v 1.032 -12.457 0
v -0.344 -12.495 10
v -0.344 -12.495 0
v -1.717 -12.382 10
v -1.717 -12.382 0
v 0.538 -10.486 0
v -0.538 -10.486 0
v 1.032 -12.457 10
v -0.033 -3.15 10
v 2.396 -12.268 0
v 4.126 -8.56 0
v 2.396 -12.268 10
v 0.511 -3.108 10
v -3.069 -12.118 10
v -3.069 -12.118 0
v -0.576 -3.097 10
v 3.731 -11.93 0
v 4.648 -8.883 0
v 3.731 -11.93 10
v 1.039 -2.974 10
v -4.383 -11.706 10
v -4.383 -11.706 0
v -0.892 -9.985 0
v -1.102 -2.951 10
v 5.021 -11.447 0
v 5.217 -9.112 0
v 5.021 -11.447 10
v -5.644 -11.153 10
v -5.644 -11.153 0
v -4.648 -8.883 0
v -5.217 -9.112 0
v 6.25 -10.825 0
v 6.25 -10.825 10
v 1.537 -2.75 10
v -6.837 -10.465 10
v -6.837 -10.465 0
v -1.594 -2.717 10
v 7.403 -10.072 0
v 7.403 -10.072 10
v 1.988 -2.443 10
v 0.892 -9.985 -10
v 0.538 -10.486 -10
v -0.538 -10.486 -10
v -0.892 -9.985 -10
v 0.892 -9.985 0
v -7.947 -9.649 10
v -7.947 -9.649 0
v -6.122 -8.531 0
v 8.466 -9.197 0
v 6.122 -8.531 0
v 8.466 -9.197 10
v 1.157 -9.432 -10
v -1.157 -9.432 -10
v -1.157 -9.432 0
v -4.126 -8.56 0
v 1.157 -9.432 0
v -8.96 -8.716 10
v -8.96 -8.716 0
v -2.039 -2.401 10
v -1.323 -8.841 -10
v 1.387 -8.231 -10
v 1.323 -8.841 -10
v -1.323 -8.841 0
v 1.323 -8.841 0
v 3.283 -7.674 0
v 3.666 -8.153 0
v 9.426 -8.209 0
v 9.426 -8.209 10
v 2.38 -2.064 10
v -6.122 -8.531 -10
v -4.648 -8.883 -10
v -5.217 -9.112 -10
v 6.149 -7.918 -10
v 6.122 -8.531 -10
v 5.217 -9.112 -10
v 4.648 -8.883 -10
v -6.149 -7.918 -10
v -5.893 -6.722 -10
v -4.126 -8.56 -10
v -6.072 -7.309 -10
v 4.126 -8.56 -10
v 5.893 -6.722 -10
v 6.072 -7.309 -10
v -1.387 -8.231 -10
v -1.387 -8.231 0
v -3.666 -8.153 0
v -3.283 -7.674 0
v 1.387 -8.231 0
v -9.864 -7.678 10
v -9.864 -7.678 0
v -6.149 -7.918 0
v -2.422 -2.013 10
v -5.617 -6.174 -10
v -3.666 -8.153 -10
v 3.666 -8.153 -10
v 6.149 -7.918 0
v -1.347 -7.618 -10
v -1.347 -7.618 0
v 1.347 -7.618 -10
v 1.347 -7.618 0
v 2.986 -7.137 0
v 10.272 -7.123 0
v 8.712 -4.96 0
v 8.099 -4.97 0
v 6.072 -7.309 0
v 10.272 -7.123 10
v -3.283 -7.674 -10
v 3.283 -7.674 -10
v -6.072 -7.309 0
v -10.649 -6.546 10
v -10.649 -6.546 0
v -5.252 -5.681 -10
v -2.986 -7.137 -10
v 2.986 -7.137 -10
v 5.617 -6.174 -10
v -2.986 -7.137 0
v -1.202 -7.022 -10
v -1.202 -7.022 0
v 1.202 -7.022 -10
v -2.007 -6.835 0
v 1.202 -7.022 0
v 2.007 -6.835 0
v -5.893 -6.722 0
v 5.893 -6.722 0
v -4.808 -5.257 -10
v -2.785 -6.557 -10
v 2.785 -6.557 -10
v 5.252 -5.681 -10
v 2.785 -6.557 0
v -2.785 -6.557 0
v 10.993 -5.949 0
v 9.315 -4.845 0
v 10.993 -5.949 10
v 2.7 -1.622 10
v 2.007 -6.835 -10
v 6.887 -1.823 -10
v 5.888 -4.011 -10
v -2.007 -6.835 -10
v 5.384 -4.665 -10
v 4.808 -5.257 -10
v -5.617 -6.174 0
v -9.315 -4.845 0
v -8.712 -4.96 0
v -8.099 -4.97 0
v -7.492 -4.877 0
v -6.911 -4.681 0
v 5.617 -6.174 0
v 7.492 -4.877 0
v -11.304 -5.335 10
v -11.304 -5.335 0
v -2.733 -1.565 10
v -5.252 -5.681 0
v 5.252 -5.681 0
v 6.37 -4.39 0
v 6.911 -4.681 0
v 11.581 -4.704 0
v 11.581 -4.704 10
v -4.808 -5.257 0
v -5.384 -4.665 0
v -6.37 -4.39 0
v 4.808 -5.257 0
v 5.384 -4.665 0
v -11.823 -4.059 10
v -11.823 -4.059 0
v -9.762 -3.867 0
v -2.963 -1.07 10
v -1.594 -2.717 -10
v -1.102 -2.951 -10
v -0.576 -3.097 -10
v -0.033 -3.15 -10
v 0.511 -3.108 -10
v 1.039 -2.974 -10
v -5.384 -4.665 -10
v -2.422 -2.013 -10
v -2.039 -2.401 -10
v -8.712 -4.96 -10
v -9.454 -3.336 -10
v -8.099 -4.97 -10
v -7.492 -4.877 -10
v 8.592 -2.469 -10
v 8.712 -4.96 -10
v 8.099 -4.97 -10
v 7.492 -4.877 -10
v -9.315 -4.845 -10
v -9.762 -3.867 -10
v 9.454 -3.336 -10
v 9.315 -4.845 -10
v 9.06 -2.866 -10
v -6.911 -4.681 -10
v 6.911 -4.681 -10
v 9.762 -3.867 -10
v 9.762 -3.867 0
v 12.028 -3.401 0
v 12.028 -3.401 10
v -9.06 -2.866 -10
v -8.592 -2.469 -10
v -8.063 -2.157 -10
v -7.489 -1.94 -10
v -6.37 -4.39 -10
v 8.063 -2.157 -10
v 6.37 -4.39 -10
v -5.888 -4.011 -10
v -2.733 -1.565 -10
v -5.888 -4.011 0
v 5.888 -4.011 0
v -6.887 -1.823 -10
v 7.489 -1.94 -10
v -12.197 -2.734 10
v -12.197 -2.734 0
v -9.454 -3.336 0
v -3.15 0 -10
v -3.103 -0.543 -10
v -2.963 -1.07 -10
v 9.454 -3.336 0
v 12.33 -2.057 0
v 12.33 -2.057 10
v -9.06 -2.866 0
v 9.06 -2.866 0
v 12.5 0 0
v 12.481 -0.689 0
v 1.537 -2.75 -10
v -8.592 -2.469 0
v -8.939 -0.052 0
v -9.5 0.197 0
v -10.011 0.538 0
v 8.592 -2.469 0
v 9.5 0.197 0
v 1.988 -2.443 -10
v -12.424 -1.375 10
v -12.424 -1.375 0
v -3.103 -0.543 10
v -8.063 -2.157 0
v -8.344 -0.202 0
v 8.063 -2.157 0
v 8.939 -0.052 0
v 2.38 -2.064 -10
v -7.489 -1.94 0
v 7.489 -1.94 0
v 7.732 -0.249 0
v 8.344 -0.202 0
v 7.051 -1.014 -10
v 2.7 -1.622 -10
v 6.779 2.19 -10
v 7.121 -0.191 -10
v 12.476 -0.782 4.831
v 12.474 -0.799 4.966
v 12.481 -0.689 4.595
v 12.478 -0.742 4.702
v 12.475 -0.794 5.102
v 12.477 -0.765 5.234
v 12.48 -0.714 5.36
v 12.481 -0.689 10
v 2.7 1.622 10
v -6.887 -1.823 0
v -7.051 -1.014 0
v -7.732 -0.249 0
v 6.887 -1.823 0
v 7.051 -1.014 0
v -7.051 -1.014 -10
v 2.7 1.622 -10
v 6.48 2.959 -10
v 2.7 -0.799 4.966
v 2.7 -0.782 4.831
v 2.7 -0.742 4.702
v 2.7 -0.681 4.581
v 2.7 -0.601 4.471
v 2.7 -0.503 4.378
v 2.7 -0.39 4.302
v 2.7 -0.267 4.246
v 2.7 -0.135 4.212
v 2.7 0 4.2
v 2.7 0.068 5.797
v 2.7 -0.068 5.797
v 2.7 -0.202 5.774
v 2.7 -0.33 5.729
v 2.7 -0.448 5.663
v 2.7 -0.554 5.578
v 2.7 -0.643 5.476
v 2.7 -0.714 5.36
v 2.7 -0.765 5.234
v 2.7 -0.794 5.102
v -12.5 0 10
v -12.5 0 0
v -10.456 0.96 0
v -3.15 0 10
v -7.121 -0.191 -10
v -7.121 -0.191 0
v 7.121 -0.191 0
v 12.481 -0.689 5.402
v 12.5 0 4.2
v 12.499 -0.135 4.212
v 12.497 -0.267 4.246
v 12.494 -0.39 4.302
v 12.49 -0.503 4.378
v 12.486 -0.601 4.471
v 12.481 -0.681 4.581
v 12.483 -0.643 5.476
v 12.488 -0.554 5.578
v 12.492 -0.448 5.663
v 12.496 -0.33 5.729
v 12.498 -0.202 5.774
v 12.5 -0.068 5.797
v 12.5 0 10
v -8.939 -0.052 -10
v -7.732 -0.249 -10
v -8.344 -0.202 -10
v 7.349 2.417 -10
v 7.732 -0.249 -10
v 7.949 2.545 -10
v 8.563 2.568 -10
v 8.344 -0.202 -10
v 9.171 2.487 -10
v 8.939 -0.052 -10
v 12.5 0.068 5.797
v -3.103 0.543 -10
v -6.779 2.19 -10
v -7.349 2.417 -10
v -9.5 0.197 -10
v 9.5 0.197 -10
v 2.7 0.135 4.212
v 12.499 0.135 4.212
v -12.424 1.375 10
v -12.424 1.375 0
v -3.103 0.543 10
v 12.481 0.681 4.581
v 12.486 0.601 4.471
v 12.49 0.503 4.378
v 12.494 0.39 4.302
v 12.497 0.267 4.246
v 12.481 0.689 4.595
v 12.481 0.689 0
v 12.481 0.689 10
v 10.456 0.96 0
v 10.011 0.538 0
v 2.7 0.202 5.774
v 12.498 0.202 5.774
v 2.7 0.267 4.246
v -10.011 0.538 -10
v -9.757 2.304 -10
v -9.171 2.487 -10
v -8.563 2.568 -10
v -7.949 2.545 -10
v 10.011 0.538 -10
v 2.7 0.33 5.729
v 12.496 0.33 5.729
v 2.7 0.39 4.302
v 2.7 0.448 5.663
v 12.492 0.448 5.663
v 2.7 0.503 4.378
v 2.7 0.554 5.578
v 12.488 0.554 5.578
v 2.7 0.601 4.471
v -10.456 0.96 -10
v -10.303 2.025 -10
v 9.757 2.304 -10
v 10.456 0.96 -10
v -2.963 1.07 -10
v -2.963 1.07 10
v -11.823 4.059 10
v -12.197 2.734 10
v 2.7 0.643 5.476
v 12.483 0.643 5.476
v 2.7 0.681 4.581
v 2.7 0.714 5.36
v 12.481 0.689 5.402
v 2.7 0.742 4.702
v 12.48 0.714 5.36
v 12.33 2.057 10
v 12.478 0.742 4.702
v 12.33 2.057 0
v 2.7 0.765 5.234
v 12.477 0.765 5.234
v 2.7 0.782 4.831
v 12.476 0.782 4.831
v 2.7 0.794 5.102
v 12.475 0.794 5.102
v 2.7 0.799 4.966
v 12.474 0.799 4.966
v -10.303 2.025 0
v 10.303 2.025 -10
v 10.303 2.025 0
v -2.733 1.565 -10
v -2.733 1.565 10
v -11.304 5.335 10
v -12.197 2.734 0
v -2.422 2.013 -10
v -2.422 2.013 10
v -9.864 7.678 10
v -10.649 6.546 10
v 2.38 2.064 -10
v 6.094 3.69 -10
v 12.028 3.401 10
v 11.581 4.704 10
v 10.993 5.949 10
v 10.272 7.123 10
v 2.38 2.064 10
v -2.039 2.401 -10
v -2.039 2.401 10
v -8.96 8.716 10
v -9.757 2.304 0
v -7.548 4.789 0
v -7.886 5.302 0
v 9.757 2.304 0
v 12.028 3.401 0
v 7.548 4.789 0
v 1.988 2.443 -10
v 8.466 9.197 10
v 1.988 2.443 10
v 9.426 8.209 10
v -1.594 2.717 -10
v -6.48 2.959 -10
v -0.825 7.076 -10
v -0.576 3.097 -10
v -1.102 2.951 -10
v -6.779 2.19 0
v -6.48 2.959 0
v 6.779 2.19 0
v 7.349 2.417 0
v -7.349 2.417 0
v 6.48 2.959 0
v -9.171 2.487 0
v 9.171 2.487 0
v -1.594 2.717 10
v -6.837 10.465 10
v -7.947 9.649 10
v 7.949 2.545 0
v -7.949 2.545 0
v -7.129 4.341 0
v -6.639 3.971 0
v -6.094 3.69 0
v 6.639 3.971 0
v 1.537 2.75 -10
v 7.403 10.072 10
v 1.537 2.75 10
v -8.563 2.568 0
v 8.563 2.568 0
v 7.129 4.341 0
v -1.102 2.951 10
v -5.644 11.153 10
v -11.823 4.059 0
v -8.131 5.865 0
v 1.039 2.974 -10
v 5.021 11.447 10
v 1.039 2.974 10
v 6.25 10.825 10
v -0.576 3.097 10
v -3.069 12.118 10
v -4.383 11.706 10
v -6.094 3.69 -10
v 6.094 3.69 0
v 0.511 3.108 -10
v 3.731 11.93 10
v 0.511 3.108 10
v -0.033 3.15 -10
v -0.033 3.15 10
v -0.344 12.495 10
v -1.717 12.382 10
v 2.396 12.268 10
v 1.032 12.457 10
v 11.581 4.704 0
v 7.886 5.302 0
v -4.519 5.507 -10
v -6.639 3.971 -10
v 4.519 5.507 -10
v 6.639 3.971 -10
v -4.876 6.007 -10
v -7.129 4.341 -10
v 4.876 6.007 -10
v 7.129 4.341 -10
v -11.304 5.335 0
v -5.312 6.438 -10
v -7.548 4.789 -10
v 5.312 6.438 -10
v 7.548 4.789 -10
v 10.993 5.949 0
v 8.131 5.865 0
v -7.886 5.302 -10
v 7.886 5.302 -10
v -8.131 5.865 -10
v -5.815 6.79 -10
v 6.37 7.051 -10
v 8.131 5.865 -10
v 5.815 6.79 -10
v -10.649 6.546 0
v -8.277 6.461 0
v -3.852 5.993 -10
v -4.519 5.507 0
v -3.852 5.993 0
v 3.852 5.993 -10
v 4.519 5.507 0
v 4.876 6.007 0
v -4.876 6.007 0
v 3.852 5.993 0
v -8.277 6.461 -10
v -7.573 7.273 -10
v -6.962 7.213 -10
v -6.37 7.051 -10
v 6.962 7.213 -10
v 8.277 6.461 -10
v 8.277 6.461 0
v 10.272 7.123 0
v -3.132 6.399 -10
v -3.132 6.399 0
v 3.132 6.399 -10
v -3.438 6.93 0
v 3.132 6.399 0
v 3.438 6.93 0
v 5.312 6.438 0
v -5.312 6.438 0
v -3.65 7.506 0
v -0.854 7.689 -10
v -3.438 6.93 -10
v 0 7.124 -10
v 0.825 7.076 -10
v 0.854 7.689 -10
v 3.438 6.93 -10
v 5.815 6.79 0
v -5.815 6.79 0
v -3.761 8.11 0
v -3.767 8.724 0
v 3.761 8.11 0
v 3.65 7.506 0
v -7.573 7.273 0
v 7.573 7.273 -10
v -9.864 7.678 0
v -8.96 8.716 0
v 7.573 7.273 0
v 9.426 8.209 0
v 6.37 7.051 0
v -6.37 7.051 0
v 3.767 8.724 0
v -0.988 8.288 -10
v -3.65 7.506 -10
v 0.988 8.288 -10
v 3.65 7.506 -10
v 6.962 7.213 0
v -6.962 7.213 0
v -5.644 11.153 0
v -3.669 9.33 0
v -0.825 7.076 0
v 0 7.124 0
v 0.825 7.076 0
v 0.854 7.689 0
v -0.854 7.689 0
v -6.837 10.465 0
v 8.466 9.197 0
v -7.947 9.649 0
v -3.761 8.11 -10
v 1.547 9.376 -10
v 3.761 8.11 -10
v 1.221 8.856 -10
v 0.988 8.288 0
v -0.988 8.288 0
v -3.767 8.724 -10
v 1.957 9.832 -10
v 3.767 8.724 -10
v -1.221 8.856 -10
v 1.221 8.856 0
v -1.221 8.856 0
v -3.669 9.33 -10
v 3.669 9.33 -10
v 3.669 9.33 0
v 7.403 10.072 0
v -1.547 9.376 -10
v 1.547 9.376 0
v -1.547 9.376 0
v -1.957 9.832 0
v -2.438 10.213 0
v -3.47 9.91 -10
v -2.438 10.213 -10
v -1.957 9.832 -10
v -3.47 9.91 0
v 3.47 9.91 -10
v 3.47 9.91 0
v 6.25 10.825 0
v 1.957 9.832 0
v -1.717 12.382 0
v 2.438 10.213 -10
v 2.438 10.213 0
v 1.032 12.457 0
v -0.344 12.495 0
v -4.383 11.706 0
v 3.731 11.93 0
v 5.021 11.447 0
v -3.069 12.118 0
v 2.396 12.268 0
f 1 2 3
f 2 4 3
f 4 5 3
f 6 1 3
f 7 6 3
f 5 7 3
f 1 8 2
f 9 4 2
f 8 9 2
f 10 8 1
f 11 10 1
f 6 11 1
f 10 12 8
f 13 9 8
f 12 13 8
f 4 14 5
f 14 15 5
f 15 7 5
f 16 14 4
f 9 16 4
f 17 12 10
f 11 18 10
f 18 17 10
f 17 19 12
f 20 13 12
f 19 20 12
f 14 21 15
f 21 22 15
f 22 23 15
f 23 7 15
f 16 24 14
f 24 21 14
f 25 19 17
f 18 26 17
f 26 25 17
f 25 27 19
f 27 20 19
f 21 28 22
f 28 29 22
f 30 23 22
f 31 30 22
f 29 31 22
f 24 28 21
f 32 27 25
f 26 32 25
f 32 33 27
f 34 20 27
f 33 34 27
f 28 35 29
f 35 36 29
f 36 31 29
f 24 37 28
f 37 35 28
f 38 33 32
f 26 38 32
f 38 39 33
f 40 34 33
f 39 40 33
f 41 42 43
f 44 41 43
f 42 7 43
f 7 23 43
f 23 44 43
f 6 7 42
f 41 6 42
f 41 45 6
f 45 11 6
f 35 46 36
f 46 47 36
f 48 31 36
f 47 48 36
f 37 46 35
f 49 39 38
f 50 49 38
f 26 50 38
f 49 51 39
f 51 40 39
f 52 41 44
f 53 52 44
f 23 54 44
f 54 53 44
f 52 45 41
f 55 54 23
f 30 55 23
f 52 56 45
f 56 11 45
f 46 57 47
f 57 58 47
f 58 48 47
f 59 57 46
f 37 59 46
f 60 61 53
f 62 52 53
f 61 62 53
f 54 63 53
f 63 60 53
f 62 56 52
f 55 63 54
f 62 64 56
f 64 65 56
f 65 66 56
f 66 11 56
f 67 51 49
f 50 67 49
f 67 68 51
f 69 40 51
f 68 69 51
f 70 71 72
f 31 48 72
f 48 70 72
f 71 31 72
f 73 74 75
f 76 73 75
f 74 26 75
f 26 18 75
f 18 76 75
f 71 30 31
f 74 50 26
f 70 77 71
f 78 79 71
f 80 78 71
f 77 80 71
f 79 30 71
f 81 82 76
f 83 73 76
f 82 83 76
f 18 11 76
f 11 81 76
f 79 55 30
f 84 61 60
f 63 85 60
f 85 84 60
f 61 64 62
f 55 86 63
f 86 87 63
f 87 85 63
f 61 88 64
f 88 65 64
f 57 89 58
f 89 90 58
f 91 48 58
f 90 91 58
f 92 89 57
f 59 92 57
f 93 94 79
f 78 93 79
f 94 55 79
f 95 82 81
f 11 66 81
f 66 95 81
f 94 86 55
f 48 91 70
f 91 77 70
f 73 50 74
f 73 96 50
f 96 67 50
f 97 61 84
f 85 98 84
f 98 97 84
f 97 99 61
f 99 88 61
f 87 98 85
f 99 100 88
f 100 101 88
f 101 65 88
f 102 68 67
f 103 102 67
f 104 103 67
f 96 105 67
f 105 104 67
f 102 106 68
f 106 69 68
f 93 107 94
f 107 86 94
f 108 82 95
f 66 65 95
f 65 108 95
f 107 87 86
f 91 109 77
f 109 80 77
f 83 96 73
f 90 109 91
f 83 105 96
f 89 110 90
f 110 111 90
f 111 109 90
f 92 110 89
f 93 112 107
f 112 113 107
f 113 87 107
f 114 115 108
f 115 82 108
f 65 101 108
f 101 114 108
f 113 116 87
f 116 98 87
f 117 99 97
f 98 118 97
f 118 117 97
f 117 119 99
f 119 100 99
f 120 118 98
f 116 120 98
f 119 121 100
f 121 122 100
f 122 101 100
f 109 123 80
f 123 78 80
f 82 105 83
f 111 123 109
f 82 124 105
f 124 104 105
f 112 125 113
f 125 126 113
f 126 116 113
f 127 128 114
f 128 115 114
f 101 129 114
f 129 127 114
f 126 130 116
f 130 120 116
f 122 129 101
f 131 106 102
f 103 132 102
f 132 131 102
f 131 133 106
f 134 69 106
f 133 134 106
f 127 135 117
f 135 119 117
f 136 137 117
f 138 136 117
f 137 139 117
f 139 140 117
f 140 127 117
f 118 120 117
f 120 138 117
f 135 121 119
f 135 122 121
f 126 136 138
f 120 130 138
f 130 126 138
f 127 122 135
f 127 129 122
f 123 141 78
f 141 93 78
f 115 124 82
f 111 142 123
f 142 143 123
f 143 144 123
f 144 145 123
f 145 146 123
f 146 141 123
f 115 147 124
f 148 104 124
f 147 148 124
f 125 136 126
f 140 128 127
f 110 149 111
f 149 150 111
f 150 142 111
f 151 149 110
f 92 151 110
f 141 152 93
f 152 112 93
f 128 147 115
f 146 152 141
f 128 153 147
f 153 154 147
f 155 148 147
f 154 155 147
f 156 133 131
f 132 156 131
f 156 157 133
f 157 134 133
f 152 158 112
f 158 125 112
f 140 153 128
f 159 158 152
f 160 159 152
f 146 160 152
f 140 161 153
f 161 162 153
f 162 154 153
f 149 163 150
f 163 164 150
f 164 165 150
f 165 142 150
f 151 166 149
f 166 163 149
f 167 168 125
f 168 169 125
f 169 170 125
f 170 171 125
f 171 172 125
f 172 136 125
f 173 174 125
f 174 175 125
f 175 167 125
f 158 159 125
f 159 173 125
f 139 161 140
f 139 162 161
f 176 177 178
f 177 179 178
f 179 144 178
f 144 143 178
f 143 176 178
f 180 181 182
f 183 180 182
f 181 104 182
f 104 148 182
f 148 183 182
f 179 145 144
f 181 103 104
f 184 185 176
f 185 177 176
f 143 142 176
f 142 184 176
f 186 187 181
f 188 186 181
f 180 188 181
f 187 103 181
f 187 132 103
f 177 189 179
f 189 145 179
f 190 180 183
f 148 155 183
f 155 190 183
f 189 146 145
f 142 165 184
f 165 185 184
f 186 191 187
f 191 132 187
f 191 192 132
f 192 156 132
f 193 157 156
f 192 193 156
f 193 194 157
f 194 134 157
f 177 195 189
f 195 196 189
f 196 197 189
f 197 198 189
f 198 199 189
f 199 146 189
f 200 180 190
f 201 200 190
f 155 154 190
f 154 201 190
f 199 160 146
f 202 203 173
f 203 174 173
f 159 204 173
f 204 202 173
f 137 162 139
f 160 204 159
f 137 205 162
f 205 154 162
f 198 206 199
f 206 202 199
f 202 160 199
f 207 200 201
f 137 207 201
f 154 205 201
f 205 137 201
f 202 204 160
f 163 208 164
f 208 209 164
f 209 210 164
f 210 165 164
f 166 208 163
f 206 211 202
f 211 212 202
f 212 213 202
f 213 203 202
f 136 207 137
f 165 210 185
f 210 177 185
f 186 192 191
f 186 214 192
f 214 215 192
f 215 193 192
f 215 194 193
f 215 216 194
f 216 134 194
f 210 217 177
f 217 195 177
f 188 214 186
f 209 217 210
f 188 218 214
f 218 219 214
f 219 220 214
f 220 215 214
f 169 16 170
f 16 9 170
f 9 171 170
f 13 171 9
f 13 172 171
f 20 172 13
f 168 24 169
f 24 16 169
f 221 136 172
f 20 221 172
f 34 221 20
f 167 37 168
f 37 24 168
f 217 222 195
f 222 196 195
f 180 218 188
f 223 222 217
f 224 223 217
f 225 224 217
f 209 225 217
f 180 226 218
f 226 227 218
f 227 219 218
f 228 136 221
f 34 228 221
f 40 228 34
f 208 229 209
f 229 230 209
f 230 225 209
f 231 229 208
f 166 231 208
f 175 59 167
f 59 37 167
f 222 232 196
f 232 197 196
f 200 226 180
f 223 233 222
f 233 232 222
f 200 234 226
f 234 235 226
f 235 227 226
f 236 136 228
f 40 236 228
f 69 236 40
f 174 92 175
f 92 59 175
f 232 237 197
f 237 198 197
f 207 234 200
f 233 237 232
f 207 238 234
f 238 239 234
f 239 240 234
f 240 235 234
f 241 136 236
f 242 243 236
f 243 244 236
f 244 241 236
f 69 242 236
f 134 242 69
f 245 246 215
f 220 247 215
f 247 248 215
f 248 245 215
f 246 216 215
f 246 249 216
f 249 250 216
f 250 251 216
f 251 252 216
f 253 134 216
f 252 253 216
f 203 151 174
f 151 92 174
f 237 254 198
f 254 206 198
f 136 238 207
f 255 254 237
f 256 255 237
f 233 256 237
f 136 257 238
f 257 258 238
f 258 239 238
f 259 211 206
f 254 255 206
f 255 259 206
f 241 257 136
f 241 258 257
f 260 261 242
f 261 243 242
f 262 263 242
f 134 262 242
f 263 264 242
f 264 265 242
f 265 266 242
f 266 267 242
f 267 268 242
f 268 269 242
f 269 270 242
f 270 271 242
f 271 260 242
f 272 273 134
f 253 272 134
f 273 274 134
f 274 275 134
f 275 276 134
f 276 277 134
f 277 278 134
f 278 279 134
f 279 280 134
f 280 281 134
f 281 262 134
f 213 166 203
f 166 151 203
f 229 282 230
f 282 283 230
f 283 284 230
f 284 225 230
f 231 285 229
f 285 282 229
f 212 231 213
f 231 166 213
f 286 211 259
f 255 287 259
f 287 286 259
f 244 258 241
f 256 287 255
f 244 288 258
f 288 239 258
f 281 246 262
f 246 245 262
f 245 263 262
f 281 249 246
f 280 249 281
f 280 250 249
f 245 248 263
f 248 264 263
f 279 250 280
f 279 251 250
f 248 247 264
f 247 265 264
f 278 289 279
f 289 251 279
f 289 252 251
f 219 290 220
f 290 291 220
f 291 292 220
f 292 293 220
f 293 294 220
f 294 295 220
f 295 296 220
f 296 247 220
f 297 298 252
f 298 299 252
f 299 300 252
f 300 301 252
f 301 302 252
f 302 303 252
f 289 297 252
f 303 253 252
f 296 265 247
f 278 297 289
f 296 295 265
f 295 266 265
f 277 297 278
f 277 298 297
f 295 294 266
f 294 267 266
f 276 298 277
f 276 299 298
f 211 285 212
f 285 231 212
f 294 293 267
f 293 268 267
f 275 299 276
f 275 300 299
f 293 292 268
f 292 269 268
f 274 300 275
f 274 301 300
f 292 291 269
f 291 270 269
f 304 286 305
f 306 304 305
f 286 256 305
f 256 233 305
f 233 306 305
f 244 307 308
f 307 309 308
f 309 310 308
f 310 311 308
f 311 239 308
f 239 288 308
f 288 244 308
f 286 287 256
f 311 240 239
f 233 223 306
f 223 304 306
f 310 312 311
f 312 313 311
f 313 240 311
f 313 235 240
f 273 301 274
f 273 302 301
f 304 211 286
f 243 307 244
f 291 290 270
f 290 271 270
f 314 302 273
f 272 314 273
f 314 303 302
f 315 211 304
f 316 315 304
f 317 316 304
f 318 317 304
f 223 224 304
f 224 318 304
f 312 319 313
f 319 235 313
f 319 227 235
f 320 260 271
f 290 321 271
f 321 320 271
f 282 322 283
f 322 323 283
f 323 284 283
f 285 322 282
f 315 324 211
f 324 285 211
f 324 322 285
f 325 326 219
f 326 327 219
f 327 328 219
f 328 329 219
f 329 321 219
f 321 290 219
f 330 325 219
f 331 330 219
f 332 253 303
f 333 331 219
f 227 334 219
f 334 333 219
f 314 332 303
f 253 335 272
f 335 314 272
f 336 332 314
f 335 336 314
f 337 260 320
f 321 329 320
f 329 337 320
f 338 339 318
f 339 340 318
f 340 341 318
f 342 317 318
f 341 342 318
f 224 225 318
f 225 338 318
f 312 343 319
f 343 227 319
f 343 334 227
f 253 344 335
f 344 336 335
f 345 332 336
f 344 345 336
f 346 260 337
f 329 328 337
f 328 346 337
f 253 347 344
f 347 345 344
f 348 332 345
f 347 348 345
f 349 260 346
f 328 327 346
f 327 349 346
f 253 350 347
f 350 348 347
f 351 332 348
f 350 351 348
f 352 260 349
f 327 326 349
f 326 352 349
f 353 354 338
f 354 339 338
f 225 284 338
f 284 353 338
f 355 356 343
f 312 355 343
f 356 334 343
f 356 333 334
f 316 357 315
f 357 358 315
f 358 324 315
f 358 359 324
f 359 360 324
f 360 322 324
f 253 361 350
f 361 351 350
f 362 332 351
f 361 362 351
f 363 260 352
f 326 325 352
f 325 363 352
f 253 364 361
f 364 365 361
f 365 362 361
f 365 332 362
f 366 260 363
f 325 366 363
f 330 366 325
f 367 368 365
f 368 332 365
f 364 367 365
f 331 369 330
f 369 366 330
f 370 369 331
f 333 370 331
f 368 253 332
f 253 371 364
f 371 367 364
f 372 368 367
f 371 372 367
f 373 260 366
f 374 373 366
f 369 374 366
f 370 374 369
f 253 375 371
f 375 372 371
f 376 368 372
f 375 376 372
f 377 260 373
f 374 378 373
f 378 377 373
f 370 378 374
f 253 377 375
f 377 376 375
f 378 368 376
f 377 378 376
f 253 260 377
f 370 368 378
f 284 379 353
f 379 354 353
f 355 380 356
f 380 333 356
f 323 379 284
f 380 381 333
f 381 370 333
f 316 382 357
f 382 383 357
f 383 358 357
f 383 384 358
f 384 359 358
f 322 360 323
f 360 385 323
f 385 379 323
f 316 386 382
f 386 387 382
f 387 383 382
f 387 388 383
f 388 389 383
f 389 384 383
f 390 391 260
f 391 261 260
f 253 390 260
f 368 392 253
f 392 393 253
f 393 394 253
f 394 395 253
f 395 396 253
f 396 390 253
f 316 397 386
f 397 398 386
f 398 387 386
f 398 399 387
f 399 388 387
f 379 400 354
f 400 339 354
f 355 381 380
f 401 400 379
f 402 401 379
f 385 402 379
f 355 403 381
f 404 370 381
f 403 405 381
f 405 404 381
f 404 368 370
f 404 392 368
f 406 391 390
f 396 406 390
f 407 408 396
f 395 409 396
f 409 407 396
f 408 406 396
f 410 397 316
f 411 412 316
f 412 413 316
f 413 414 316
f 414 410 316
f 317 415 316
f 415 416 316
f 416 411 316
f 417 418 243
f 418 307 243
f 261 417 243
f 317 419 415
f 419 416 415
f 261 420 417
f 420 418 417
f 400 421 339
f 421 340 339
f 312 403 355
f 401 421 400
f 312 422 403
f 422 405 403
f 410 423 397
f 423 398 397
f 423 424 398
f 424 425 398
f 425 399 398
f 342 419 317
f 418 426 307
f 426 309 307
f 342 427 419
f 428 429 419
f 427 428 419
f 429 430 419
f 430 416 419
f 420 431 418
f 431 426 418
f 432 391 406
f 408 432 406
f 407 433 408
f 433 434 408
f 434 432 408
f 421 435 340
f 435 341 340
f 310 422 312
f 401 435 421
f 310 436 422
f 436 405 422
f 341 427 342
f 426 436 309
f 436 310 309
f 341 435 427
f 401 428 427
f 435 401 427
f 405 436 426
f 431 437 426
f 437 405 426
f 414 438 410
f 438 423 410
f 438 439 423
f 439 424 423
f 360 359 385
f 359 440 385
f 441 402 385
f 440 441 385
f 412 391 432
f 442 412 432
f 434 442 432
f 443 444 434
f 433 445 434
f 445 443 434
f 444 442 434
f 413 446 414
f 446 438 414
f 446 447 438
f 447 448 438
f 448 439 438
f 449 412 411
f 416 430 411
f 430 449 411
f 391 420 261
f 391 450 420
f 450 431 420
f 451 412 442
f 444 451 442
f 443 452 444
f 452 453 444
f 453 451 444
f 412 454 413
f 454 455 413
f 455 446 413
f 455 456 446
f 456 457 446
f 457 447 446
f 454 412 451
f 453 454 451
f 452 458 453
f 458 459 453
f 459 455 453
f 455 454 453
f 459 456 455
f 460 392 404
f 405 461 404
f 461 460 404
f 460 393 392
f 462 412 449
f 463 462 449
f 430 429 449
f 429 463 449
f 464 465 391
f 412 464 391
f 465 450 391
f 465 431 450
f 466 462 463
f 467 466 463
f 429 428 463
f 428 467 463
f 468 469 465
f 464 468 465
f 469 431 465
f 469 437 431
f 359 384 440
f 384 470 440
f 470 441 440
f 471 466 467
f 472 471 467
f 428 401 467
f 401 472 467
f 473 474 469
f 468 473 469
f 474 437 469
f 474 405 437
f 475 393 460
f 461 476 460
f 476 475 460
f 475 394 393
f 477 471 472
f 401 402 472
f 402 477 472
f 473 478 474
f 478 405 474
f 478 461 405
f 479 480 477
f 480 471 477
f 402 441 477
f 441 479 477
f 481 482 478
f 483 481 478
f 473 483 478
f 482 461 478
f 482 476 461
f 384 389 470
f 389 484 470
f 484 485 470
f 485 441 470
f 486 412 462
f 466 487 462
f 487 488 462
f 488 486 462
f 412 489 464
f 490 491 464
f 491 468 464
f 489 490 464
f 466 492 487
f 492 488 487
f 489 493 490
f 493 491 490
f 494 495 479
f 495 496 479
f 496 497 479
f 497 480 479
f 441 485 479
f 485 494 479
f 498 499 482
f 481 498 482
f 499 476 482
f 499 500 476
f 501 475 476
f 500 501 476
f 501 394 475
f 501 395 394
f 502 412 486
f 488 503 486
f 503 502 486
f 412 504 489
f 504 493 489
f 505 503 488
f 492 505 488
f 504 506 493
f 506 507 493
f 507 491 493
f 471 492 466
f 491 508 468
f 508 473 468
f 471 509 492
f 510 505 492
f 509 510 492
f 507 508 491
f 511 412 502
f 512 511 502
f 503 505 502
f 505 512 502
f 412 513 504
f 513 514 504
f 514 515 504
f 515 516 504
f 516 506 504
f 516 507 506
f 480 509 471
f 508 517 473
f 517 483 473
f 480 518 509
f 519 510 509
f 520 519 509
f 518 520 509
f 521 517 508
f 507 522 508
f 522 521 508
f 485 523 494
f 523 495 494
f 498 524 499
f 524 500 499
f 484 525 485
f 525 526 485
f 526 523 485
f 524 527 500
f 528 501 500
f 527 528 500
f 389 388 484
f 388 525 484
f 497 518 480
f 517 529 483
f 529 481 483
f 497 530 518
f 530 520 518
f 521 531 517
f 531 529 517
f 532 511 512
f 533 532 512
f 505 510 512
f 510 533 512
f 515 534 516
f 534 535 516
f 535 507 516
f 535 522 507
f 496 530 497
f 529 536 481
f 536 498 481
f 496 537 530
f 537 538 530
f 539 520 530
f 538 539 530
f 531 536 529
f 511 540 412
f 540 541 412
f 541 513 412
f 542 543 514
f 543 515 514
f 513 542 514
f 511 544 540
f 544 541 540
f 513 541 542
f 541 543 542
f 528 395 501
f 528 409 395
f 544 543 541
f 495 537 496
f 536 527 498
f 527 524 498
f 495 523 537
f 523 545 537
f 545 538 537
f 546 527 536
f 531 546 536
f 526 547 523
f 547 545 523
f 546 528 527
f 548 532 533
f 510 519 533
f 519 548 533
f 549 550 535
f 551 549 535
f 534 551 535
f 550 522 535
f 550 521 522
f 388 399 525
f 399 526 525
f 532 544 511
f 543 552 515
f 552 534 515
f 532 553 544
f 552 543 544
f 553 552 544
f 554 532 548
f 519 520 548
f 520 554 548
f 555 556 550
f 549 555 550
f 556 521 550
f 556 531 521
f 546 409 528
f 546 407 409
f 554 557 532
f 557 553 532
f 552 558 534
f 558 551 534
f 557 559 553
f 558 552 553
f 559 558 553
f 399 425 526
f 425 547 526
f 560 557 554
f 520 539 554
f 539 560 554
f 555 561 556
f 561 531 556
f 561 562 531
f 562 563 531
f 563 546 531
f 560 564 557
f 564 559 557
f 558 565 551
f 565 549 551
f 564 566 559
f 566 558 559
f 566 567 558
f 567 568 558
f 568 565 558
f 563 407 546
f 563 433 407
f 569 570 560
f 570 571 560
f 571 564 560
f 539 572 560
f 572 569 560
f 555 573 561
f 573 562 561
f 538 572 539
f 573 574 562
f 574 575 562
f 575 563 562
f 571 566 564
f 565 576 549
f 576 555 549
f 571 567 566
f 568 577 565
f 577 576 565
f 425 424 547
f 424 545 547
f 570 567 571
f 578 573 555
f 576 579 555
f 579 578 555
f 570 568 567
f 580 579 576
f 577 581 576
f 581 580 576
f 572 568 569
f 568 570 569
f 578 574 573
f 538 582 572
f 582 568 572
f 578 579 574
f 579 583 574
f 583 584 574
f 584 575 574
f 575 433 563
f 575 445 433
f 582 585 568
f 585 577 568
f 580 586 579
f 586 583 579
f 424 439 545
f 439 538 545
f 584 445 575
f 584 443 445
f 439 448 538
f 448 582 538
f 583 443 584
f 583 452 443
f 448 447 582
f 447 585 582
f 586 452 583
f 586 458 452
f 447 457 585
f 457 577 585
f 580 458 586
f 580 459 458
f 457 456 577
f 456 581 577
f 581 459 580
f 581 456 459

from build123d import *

# Parameters (mm, degrees)
SKETCH1_W             = 10
SKETCH1_H             = 10.5
CUT_EXTRUDE1_DEPTH    = 11
CIRPATTERN1_COUNT     = 11
SKETCH3_R             = 12.5
BOSS_EXTRUDE1_DEPTH   = 10
CUT_EXTRUDE2_DEPTH    = 21
M2_TAPPED_HOLE1_D     = 1.6
M2_TAPPED_HOLE1_DEPTH = 9.8


with BuildPart() as part:
    # Sketch1 → Revolve1 (revolve)
    with BuildSketch(Plane(origin=(0, 0, 0), x_dir=(0, 0, -1), z_dir=(1, 0, 0))):
        with Locations((5, 5.25)):
            Rectangle(SKETCH1_W, SKETCH1_H)
    revolve(axis=Axis((0, 0, 0), (0, 0, -1)))

    # Sketch2 → Cut-Extrude1 (cut, through all)
    with BuildSketch(Plane.XY):
        with BuildLine():
            ThreePointArc((-0.824529961, 7.076123681), (0, 7.124), (0.824529961, 7.076123681))
            ThreePointArc((0.824529961, 7.076123681), (1.228997776, 8.871328839), (2.467796901, 10.232112622))
            ThreePointArc((2.467796901, 10.232112622), (0, 10.5255), (-2.467796901, 10.232112622))
            ThreePointArc((-2.467796901, 10.232112622), (-1.228997776, 8.871328839), (-0.824529961, 7.076123681))
        make_face()
    cut_extrude1 = extrude(amount=-CUT_EXTRUDE1_DEPTH, mode=Mode.SUBTRACT)

    # CirPattern1: Cut-Extrude1 ×11 about axis
    cirpattern1_axis = Axis((0, 0, 0), (0, 0, 1))
    for i in range(1, CIRPATTERN1_COUNT):
        add(cut_extrude1.rotate(cirpattern1_axis, i * 360 / CIRPATTERN1_COUNT), mode=Mode.SUBTRACT)

    # Sketch3 → Boss-Extrude1 (add)
    with BuildSketch(Plane.XY):
        Circle(SKETCH3_R)
    extrude(amount=BOSS_EXTRUDE1_DEPTH)

    # Sketch4 → Cut-Extrude2 (cut, through all)
    with BuildSketch(Plane.XY.offset(10)):
        with BuildLine():
            Line((2.7, 1.622498074), (2.7, -1.622498074))
            ThreePointArc((2.7, -1.622498074), (-3.15, 0), (2.7, 1.622498074))
        make_face()
    extrude(amount=-CUT_EXTRUDE2_DEPTH, mode=Mode.SUBTRACT)

    # M2 Tapped Hole1
    with Locations(Plane(origin=(12.5, 0, 0), x_dir=(0, 0, -1), z_dir=(1, 0, 0))):
        with Locations((-5, 0)):
            Hole(M2_TAPPED_HOLE1_D / 2, depth=M2_TAPPED_HOLE1_DEPTH)


solid = part.part
